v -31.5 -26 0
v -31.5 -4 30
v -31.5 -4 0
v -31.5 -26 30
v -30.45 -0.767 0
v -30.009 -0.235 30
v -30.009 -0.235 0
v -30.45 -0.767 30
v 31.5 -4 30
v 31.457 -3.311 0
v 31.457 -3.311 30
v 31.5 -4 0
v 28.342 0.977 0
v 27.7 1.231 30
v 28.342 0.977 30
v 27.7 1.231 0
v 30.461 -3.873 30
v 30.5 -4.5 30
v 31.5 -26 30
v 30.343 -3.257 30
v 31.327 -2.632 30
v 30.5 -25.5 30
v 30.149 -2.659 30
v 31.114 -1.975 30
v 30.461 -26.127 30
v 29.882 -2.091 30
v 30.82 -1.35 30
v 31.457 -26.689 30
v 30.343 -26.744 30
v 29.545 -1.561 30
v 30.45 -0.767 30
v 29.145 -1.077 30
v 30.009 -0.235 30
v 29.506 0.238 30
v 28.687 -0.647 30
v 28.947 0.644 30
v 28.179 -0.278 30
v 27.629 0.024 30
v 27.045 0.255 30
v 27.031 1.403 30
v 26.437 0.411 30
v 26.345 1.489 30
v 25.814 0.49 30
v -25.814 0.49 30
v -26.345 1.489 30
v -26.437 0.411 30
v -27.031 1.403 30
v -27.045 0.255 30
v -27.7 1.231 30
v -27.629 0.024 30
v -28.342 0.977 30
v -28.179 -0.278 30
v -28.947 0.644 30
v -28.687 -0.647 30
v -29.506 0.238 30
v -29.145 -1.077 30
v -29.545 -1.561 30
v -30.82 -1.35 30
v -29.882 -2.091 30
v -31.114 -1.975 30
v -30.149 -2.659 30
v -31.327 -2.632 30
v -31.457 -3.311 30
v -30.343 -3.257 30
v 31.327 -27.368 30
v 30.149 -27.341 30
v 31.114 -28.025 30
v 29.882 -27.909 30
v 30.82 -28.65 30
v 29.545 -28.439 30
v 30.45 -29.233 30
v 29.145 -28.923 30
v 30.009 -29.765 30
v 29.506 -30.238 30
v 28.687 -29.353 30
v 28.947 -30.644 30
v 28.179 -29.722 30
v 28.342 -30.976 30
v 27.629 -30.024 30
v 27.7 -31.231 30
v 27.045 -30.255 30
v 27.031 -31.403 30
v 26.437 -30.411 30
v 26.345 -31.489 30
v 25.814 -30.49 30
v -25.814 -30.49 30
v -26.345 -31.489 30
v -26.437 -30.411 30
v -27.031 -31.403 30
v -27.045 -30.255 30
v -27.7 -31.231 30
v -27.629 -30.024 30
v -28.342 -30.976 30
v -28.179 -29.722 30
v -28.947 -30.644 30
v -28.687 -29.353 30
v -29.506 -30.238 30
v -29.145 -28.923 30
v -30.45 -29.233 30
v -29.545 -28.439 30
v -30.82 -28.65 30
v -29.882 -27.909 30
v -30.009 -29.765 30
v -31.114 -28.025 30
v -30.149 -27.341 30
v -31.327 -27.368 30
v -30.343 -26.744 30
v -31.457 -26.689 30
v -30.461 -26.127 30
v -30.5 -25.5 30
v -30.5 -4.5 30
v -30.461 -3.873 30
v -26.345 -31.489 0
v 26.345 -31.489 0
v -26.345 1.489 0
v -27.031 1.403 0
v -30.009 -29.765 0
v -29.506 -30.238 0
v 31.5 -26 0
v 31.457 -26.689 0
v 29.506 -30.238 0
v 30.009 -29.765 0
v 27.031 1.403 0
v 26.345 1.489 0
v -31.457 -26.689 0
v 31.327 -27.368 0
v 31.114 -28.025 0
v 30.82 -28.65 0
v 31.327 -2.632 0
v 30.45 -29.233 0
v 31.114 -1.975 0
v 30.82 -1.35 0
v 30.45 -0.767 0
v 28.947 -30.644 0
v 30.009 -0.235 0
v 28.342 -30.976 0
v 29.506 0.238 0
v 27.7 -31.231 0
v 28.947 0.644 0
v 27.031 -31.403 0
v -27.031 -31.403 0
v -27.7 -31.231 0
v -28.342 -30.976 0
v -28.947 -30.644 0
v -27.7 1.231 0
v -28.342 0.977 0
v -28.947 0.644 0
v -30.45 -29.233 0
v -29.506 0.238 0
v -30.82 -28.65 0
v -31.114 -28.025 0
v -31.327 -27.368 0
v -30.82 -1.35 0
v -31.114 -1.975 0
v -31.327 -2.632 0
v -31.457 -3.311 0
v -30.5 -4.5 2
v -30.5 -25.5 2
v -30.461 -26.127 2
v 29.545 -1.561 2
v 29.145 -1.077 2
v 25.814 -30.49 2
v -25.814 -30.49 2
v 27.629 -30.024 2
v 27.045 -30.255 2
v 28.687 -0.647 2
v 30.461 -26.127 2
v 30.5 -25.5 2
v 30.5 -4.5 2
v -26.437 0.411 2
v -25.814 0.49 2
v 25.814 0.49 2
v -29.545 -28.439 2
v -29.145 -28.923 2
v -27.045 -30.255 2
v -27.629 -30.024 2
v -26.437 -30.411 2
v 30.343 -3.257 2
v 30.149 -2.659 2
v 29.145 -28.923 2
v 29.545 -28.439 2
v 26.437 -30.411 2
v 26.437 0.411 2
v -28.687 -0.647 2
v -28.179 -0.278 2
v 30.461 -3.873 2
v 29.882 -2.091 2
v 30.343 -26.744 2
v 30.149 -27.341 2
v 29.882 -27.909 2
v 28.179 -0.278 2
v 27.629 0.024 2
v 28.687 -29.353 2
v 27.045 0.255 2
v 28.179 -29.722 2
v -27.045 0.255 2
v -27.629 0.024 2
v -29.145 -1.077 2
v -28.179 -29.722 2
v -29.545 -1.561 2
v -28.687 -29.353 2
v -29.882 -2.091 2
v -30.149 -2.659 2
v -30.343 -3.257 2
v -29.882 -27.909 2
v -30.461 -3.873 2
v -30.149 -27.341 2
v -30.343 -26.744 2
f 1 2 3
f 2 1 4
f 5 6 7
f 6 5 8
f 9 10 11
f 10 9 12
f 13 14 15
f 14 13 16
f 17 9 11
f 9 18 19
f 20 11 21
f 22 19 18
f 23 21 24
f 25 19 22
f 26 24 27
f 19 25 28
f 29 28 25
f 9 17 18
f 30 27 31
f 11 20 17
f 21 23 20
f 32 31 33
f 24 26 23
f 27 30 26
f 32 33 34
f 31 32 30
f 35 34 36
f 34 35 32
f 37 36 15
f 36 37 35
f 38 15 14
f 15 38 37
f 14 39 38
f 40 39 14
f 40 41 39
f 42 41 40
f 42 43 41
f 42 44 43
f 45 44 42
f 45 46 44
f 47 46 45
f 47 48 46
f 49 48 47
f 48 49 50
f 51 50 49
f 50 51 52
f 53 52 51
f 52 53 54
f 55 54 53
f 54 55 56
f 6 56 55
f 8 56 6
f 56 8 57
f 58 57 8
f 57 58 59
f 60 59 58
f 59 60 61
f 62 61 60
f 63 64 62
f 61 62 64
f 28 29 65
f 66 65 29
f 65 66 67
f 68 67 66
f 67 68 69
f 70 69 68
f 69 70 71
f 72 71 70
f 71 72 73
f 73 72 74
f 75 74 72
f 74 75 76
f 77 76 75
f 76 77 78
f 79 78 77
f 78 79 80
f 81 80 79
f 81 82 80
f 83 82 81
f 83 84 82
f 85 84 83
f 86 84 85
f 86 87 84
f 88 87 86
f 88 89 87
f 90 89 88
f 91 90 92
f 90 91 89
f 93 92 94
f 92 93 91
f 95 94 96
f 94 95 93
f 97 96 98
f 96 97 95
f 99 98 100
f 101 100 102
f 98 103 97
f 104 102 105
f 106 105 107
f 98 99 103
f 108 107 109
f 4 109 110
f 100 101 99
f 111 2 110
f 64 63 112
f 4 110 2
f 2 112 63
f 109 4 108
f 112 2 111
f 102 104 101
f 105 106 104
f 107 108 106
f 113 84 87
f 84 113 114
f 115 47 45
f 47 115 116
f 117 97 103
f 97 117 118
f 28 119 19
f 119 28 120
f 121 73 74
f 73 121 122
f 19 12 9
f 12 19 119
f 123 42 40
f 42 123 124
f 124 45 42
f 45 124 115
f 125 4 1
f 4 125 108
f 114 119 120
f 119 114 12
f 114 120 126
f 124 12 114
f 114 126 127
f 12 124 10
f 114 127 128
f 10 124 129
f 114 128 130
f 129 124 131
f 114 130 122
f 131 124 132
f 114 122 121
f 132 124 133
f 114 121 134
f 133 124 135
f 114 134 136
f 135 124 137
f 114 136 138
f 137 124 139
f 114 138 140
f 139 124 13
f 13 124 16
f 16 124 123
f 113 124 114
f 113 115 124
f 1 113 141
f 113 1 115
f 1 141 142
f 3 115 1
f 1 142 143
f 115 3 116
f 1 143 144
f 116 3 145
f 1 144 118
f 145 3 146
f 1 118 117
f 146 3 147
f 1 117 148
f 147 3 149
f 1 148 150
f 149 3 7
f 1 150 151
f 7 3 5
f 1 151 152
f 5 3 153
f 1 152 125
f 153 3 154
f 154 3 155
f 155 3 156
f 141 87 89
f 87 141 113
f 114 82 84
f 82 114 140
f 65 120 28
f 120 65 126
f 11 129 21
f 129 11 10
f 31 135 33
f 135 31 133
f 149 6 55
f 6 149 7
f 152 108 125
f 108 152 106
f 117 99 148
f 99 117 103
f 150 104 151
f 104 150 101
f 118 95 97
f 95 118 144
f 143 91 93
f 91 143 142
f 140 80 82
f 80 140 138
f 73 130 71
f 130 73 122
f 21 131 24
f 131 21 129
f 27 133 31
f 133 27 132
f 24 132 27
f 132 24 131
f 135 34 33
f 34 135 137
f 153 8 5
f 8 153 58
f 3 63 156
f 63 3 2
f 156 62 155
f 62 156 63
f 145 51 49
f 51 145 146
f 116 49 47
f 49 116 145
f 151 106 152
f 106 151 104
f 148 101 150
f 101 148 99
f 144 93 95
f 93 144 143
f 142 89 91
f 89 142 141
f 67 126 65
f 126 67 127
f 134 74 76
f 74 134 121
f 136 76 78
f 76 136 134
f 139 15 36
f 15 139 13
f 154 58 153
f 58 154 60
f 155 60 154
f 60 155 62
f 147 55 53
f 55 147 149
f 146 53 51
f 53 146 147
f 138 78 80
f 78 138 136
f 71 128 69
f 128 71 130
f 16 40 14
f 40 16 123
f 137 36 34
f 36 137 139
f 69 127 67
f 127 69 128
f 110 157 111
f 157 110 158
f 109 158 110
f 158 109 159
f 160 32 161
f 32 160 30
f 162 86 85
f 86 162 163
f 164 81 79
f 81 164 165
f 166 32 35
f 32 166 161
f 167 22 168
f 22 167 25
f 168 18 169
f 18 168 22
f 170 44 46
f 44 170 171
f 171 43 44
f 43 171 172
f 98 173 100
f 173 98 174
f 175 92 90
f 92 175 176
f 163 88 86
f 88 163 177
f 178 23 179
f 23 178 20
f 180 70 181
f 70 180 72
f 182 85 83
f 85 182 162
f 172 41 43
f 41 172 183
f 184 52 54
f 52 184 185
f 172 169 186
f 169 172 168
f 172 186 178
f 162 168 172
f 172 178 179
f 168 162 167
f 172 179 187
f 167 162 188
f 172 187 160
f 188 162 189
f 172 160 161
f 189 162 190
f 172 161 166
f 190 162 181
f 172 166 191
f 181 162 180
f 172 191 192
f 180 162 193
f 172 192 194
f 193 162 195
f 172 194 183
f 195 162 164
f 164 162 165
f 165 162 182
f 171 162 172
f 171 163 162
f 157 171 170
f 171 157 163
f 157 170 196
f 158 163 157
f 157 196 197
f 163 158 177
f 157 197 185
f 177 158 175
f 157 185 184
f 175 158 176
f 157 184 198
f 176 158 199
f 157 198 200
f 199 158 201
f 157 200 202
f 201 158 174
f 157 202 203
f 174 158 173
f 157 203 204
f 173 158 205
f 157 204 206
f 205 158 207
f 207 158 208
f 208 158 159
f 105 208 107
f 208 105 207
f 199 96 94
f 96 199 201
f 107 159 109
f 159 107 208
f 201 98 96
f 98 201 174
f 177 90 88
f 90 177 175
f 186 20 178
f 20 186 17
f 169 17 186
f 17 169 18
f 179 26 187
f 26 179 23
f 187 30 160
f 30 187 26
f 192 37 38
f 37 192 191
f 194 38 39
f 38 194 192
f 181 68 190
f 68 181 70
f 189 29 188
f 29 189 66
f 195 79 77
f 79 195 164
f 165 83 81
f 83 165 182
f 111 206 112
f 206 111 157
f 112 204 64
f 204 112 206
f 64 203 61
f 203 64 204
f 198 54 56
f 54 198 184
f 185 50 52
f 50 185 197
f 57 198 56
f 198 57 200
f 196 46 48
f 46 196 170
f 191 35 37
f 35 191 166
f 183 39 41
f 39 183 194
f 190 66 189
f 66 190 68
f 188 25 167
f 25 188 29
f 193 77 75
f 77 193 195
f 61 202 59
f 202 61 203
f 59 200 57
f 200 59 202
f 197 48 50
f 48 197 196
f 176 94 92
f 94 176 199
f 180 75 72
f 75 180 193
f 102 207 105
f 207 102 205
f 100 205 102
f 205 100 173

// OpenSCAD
$fn = 50;


difference() {
	union() {
		translate(v = [0, -15.0000000000, 0]) {
			hull() {
				translate(v = [-26.0000000000, 11.0000000000, 0]) {
					cylinder(h = 30, r = 5.5000000000);
				}
				translate(v = [26.0000000000, 11.0000000000, 0]) {
					cylinder(h = 30, r = 5.5000000000);
				}
				translate(v = [-26.0000000000, -11.0000000000, 0]) {
					cylinder(h = 30, r = 5.5000000000);
				}
				translate(v = [26.0000000000, -11.0000000000, 0]) {
					cylinder(h = 30, r = 5.5000000000);
				}
			}
		}
	}
	union() {
		translate(v = [0, -15.0000000000, 2]) {
			hull() {
				translate(v = [-25.5000000000, 10.5000000000, 0]) {
					cylinder(h = 60, r = 5);
				}
				translate(v = [25.5000000000, 10.5000000000, 0]) {
					cylinder(h = 60, r = 5);
				}
				translate(v = [-25.5000000000, -10.5000000000, 0]) {
					cylinder(h = 60, r = 5);
				}
				translate(v = [25.5000000000, -10.5000000000, 0]) {
					cylinder(h = 60, r = 5);
				}
			}
		}
	}
}
